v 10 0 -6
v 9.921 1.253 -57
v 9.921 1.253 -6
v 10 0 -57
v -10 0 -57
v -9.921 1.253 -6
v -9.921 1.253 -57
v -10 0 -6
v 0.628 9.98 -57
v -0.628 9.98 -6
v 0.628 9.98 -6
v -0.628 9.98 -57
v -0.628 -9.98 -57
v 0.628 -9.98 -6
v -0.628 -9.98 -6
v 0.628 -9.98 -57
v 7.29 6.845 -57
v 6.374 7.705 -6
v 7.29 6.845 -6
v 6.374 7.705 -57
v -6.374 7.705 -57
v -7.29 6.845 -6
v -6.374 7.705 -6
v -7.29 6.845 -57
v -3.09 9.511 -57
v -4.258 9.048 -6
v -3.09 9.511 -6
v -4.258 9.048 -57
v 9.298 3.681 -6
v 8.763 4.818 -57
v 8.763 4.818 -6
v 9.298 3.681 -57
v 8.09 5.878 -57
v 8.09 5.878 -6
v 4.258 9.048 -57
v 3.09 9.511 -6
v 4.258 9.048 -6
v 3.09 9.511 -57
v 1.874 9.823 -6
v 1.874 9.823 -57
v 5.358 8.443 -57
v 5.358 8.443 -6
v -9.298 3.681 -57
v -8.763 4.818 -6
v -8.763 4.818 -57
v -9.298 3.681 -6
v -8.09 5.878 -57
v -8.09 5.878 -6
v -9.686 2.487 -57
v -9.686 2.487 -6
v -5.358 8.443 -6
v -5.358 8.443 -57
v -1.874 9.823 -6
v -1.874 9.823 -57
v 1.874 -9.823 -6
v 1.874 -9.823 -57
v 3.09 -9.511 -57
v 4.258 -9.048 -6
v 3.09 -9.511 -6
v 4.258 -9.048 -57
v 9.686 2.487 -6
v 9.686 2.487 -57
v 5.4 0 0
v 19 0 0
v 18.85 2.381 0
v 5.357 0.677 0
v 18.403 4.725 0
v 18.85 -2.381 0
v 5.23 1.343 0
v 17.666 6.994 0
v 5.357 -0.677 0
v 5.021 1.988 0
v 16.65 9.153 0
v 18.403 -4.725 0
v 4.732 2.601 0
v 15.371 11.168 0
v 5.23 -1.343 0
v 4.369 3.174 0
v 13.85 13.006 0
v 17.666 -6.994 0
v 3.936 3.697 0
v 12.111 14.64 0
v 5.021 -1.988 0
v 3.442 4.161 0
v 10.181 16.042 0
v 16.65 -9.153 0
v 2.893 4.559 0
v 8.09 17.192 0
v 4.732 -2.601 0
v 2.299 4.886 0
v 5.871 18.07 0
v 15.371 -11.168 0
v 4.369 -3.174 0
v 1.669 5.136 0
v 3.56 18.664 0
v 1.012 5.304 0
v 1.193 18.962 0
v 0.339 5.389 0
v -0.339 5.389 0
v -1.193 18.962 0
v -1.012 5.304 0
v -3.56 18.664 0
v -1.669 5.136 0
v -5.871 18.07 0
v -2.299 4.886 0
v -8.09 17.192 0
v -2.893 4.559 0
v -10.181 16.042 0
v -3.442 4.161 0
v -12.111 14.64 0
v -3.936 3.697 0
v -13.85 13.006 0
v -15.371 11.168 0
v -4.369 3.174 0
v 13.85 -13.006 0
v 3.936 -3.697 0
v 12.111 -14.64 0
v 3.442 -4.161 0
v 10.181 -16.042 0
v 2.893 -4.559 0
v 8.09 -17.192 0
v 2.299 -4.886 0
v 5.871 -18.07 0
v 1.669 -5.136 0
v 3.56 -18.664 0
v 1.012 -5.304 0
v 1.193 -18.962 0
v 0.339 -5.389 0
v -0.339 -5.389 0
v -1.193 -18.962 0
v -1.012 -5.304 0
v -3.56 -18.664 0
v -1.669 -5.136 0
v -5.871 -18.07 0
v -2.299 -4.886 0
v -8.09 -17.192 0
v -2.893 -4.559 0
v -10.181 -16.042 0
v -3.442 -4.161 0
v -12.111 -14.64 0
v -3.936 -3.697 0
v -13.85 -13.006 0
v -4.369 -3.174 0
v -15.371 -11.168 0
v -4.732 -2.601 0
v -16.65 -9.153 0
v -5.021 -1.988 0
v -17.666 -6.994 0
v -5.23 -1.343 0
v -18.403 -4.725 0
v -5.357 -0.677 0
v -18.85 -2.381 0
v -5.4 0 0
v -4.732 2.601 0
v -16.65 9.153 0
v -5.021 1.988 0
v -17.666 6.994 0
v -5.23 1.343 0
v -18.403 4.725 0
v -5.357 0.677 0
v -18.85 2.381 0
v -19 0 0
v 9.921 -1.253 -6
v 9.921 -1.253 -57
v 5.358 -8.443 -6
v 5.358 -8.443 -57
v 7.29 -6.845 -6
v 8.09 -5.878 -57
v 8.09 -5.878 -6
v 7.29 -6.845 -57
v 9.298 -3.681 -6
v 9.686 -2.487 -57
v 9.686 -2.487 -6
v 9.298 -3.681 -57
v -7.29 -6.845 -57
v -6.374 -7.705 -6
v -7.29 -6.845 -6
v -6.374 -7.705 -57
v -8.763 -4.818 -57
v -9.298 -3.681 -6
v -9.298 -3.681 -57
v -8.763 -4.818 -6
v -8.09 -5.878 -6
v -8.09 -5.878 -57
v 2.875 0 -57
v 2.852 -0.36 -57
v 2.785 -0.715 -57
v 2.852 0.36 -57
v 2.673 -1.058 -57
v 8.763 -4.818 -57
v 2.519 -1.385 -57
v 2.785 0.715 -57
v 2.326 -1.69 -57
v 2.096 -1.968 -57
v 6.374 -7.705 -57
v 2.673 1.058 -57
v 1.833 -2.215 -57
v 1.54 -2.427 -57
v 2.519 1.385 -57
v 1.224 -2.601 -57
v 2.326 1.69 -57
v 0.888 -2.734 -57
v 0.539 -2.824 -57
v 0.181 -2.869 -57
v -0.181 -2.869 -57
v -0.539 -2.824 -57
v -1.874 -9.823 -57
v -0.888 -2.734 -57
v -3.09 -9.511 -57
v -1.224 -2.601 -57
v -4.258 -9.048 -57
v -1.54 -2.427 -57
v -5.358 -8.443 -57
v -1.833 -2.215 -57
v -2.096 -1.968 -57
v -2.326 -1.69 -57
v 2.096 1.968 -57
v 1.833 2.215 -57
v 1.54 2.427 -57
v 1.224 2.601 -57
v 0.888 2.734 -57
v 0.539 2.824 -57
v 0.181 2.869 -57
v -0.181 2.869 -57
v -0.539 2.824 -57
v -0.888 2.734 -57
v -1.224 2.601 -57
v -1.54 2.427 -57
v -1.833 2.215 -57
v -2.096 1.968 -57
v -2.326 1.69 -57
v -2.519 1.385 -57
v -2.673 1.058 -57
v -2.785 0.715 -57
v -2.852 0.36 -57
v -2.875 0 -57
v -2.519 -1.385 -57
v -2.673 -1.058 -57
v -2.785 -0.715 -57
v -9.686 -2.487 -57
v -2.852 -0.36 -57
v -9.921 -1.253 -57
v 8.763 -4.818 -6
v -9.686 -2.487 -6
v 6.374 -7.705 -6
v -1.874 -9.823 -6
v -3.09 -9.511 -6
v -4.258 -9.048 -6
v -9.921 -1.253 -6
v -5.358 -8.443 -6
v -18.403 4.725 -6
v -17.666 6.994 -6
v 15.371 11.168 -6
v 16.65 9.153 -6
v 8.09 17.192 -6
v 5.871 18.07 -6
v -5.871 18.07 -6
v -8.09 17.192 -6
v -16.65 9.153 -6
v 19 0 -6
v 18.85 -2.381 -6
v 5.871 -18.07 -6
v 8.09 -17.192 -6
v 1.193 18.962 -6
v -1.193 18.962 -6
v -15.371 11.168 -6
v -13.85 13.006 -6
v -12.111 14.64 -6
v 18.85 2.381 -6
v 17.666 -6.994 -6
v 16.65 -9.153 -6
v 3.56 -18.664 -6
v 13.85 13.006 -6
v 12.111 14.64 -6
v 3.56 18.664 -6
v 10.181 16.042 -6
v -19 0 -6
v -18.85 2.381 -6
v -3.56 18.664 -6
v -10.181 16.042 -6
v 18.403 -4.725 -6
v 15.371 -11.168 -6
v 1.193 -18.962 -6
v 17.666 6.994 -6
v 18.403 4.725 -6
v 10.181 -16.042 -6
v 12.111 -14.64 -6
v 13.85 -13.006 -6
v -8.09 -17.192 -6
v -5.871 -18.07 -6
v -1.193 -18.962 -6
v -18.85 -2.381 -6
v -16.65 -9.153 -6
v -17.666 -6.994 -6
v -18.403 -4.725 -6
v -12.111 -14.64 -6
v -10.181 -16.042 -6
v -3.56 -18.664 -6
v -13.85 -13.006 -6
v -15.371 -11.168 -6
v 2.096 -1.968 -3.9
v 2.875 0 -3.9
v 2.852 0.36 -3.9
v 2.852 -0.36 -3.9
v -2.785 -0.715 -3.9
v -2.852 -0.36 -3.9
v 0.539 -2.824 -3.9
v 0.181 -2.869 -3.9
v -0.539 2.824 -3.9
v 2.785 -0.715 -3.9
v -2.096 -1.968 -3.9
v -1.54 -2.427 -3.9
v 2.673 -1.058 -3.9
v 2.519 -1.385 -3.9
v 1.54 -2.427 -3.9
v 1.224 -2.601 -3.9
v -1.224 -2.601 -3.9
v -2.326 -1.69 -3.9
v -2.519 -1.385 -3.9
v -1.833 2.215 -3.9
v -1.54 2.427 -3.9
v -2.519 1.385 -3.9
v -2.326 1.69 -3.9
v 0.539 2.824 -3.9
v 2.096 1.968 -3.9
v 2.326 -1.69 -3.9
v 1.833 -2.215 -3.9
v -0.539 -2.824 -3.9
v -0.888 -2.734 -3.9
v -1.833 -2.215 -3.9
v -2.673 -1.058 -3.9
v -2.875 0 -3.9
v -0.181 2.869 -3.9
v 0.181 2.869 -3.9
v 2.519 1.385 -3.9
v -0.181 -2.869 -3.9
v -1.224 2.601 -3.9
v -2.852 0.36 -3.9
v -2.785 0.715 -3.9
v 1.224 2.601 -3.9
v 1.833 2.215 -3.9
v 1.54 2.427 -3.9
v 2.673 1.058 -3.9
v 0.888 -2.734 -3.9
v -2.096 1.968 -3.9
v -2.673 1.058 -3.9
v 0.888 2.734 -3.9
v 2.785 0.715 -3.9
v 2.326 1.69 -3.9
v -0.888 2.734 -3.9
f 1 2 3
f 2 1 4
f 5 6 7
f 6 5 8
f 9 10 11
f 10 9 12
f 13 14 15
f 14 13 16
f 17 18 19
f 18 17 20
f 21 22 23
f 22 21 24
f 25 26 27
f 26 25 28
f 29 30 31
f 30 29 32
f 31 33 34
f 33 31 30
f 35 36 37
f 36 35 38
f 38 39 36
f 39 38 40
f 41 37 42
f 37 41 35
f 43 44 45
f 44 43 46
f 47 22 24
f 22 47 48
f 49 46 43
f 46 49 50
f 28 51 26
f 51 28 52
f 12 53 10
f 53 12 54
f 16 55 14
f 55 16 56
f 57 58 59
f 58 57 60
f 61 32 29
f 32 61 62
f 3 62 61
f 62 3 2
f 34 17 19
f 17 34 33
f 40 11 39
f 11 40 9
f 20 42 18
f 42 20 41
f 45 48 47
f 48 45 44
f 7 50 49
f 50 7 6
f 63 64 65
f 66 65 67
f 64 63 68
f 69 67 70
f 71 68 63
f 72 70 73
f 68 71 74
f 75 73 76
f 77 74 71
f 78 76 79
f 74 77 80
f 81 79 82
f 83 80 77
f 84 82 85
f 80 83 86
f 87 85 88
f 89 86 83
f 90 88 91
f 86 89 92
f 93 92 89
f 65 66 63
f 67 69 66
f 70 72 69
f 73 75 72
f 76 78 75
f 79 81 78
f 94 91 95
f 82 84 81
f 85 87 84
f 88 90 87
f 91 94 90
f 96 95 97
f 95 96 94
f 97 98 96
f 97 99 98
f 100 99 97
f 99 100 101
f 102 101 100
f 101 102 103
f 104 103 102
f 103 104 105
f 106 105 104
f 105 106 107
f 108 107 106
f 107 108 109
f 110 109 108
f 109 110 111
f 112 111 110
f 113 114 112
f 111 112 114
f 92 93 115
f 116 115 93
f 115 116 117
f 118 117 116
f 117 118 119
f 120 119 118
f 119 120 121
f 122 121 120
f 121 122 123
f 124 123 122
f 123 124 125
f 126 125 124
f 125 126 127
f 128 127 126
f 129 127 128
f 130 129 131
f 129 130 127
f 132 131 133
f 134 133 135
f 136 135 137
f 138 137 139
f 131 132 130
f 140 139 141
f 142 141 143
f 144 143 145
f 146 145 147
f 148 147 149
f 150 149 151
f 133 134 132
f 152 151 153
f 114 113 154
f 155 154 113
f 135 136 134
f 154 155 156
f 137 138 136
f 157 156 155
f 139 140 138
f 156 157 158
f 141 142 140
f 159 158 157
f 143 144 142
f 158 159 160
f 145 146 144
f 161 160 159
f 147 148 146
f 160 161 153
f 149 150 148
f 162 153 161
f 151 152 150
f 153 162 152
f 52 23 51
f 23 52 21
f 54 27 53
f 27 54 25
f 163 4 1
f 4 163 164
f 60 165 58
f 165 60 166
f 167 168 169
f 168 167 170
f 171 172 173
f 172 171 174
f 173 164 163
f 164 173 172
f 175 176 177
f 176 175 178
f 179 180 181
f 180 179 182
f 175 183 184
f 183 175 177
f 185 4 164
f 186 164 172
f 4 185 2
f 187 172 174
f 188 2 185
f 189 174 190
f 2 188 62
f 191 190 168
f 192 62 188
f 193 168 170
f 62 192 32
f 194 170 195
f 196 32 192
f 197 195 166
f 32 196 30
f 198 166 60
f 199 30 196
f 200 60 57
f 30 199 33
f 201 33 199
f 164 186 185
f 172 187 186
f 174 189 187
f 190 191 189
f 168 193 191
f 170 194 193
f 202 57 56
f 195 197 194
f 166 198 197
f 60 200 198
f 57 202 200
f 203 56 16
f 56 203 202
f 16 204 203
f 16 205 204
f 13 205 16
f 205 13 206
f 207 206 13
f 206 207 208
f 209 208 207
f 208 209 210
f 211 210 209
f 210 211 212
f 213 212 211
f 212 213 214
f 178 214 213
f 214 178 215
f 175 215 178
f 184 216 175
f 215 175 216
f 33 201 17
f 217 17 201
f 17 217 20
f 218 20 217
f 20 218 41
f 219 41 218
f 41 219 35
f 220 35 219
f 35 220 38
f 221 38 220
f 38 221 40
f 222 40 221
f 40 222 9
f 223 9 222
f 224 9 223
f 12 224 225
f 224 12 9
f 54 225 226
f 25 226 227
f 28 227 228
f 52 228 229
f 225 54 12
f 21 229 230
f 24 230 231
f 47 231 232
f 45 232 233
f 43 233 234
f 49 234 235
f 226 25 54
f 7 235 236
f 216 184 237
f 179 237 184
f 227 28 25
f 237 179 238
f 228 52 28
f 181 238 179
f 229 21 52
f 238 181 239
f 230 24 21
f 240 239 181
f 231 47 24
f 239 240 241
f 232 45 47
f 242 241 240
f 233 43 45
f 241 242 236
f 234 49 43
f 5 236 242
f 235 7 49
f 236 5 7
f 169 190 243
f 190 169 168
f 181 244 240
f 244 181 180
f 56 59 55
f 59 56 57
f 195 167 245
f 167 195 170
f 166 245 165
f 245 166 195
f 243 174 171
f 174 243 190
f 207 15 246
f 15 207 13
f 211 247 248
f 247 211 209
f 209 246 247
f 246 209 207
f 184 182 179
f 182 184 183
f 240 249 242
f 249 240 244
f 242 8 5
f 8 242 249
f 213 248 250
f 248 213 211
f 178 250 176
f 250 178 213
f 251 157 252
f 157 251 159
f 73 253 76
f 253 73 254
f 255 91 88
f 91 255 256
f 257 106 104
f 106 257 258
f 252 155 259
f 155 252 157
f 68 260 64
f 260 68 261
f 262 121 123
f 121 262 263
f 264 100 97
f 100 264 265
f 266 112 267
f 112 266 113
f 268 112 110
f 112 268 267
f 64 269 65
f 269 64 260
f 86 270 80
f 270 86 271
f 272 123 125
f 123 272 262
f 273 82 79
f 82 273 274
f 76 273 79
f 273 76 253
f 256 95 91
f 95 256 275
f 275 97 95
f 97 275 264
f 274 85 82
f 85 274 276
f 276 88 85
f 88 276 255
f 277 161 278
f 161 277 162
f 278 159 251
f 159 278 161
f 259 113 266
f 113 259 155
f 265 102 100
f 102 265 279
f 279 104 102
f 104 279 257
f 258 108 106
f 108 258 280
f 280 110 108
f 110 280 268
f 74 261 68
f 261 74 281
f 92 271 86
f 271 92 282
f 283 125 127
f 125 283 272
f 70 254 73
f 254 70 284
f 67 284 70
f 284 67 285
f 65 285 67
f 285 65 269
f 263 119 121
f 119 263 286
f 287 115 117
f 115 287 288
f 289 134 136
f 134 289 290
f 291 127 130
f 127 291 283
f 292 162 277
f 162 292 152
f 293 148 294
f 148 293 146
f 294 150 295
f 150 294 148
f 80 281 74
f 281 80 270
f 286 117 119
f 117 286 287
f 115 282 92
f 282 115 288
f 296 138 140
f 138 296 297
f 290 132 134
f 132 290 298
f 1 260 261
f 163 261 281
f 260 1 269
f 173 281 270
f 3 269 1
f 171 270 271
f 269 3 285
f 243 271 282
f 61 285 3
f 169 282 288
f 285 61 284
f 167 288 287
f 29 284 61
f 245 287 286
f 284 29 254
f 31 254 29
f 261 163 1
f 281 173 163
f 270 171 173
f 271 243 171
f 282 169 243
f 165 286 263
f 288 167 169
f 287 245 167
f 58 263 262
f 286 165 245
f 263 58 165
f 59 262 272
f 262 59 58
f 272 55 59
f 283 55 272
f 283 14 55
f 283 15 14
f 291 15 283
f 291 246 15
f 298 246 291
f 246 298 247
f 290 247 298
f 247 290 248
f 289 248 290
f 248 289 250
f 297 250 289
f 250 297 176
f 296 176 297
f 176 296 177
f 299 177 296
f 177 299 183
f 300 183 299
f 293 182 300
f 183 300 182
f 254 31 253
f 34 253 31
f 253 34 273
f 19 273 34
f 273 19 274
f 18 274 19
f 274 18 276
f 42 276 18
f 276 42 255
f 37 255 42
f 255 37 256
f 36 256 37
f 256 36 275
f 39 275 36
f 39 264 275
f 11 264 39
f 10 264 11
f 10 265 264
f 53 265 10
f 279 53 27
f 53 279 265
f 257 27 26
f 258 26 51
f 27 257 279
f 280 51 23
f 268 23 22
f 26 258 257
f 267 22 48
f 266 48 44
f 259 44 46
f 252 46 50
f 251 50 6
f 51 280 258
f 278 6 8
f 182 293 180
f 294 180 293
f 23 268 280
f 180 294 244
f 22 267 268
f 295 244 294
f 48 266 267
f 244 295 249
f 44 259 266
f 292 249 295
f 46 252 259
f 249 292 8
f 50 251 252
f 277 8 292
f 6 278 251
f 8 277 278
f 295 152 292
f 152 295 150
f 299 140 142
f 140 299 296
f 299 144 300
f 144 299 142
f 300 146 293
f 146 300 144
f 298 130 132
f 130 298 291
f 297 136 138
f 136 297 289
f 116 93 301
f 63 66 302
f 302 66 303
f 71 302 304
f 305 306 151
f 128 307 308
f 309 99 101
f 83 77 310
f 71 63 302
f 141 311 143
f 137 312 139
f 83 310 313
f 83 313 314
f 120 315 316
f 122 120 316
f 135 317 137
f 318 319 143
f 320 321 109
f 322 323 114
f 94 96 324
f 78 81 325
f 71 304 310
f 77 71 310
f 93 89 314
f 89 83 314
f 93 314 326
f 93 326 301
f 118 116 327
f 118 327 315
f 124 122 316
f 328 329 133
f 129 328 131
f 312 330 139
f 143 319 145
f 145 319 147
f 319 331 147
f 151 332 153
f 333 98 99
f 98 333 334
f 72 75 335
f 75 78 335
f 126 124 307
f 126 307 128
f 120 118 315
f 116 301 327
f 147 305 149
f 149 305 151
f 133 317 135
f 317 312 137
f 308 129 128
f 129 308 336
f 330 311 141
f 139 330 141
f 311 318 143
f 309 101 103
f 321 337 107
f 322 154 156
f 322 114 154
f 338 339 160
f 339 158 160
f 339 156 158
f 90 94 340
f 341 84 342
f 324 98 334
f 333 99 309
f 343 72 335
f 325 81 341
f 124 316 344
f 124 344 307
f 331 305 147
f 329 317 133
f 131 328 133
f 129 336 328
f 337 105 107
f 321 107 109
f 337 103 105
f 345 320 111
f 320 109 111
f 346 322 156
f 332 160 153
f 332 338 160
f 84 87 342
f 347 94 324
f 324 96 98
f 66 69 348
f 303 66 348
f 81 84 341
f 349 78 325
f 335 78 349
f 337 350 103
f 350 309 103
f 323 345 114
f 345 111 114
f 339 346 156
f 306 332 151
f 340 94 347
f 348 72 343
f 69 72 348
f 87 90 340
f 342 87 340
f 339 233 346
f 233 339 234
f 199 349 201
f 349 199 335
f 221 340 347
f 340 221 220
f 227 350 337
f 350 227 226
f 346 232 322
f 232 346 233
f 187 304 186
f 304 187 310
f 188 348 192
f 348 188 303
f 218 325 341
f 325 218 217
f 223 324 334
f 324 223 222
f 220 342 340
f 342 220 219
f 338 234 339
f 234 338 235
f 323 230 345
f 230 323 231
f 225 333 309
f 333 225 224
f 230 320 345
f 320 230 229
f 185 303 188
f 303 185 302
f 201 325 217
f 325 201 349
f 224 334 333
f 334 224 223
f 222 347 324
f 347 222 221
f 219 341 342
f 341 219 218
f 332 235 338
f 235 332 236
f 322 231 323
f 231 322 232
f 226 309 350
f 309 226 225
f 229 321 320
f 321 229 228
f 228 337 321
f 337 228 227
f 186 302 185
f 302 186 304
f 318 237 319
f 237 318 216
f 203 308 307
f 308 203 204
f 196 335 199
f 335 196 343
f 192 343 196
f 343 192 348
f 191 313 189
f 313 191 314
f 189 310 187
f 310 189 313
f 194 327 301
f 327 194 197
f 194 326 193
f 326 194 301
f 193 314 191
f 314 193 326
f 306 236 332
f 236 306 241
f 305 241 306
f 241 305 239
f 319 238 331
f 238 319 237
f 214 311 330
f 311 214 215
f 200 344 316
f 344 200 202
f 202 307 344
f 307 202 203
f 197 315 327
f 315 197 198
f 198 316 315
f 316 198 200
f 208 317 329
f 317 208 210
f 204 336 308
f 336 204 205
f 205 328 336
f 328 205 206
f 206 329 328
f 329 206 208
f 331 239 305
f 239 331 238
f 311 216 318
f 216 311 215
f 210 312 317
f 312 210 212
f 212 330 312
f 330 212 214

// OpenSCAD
$fn = 50;


difference() {
	union() {
		translate(v = [0, 0, -57.0000000000]) {
			cylinder(h = 57, r = 10.0000000000);
		}
		translate(v = [0, 0, -6.0000000000]) {
			cylinder(h = 6, r = 19.0000000000);
		}
	}
	union() {
		translate(v = [0, 0, 0]) {
			rotate(a = [0, 0, 0]) {
				difference() {
					union() {
						#translate(v = [0, 0, -57.0000000000]) {
							cylinder(h = 57, r = 2.6000000000);
						}
						#translate(v = [0, 0, -3.9000000000]) {
							cylinder(h = 3.9000000000, r1 = 2.8750000000, r2 = 5.4000000000);
						}
						#translate(v = [0, 0, -57.0000000000]) {
							cylinder(h = 57, r = 2.8750000000);
						}
						#translate(v = [0, 0, -57.0000000000]) {
							cylinder(h = 57, r = 2.6000000000);
						}
					}
					union();
				}
			}
		}
	}
}
